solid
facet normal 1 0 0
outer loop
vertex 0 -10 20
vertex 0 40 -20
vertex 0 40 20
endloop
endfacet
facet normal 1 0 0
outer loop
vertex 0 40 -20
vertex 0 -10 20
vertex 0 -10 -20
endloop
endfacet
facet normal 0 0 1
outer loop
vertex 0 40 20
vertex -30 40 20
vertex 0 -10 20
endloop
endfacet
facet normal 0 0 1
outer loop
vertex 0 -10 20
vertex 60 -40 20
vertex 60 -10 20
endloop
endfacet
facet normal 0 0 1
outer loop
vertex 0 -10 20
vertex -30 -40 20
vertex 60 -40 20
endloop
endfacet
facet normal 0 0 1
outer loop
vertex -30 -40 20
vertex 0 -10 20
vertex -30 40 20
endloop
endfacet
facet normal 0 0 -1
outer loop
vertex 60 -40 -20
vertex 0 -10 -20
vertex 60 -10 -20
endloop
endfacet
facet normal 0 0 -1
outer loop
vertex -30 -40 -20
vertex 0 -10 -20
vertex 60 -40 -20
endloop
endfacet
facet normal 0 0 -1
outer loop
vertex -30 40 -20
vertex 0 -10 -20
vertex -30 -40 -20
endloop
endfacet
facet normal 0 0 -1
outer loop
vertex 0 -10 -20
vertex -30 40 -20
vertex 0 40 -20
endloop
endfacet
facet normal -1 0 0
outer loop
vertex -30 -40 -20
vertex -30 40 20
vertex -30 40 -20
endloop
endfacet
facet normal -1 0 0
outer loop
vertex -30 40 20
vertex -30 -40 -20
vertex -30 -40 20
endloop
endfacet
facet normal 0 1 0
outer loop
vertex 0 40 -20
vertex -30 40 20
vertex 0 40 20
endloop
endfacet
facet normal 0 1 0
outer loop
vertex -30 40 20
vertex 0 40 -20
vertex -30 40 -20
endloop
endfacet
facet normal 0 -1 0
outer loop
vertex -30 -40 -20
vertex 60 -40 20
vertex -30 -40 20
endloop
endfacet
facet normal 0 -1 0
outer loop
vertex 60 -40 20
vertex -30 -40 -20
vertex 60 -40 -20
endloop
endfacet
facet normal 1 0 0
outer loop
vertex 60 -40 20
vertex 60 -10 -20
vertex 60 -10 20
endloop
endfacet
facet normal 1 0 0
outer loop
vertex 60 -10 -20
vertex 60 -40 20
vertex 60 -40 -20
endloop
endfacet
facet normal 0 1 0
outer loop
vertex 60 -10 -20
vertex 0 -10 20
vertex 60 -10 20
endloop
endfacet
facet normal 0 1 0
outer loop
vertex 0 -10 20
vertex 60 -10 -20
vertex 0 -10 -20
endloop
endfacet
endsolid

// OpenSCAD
// file: _common.scad
// orthographic 共用尺寸 / 解析度設定
// 所有物件外接立方控制在 ~80 mm，方便相機固定縮放
$fn = 64;  // 圓面解析度（影響 STL 大小，64 在視覺與大小取得平衡）
CHAMFER = 1.2;  // 標準導角尺寸
// main file
// L 型塊：直立 30×80×40 + 水平 60×30×40
include <_common.scad>

union() {
  // 直立桿
  translate([-30, -40, -20]) cube([30, 80, 40]);
  // 水平底
  translate([0, -40, -20]) cube([60, 30, 40]);
}
